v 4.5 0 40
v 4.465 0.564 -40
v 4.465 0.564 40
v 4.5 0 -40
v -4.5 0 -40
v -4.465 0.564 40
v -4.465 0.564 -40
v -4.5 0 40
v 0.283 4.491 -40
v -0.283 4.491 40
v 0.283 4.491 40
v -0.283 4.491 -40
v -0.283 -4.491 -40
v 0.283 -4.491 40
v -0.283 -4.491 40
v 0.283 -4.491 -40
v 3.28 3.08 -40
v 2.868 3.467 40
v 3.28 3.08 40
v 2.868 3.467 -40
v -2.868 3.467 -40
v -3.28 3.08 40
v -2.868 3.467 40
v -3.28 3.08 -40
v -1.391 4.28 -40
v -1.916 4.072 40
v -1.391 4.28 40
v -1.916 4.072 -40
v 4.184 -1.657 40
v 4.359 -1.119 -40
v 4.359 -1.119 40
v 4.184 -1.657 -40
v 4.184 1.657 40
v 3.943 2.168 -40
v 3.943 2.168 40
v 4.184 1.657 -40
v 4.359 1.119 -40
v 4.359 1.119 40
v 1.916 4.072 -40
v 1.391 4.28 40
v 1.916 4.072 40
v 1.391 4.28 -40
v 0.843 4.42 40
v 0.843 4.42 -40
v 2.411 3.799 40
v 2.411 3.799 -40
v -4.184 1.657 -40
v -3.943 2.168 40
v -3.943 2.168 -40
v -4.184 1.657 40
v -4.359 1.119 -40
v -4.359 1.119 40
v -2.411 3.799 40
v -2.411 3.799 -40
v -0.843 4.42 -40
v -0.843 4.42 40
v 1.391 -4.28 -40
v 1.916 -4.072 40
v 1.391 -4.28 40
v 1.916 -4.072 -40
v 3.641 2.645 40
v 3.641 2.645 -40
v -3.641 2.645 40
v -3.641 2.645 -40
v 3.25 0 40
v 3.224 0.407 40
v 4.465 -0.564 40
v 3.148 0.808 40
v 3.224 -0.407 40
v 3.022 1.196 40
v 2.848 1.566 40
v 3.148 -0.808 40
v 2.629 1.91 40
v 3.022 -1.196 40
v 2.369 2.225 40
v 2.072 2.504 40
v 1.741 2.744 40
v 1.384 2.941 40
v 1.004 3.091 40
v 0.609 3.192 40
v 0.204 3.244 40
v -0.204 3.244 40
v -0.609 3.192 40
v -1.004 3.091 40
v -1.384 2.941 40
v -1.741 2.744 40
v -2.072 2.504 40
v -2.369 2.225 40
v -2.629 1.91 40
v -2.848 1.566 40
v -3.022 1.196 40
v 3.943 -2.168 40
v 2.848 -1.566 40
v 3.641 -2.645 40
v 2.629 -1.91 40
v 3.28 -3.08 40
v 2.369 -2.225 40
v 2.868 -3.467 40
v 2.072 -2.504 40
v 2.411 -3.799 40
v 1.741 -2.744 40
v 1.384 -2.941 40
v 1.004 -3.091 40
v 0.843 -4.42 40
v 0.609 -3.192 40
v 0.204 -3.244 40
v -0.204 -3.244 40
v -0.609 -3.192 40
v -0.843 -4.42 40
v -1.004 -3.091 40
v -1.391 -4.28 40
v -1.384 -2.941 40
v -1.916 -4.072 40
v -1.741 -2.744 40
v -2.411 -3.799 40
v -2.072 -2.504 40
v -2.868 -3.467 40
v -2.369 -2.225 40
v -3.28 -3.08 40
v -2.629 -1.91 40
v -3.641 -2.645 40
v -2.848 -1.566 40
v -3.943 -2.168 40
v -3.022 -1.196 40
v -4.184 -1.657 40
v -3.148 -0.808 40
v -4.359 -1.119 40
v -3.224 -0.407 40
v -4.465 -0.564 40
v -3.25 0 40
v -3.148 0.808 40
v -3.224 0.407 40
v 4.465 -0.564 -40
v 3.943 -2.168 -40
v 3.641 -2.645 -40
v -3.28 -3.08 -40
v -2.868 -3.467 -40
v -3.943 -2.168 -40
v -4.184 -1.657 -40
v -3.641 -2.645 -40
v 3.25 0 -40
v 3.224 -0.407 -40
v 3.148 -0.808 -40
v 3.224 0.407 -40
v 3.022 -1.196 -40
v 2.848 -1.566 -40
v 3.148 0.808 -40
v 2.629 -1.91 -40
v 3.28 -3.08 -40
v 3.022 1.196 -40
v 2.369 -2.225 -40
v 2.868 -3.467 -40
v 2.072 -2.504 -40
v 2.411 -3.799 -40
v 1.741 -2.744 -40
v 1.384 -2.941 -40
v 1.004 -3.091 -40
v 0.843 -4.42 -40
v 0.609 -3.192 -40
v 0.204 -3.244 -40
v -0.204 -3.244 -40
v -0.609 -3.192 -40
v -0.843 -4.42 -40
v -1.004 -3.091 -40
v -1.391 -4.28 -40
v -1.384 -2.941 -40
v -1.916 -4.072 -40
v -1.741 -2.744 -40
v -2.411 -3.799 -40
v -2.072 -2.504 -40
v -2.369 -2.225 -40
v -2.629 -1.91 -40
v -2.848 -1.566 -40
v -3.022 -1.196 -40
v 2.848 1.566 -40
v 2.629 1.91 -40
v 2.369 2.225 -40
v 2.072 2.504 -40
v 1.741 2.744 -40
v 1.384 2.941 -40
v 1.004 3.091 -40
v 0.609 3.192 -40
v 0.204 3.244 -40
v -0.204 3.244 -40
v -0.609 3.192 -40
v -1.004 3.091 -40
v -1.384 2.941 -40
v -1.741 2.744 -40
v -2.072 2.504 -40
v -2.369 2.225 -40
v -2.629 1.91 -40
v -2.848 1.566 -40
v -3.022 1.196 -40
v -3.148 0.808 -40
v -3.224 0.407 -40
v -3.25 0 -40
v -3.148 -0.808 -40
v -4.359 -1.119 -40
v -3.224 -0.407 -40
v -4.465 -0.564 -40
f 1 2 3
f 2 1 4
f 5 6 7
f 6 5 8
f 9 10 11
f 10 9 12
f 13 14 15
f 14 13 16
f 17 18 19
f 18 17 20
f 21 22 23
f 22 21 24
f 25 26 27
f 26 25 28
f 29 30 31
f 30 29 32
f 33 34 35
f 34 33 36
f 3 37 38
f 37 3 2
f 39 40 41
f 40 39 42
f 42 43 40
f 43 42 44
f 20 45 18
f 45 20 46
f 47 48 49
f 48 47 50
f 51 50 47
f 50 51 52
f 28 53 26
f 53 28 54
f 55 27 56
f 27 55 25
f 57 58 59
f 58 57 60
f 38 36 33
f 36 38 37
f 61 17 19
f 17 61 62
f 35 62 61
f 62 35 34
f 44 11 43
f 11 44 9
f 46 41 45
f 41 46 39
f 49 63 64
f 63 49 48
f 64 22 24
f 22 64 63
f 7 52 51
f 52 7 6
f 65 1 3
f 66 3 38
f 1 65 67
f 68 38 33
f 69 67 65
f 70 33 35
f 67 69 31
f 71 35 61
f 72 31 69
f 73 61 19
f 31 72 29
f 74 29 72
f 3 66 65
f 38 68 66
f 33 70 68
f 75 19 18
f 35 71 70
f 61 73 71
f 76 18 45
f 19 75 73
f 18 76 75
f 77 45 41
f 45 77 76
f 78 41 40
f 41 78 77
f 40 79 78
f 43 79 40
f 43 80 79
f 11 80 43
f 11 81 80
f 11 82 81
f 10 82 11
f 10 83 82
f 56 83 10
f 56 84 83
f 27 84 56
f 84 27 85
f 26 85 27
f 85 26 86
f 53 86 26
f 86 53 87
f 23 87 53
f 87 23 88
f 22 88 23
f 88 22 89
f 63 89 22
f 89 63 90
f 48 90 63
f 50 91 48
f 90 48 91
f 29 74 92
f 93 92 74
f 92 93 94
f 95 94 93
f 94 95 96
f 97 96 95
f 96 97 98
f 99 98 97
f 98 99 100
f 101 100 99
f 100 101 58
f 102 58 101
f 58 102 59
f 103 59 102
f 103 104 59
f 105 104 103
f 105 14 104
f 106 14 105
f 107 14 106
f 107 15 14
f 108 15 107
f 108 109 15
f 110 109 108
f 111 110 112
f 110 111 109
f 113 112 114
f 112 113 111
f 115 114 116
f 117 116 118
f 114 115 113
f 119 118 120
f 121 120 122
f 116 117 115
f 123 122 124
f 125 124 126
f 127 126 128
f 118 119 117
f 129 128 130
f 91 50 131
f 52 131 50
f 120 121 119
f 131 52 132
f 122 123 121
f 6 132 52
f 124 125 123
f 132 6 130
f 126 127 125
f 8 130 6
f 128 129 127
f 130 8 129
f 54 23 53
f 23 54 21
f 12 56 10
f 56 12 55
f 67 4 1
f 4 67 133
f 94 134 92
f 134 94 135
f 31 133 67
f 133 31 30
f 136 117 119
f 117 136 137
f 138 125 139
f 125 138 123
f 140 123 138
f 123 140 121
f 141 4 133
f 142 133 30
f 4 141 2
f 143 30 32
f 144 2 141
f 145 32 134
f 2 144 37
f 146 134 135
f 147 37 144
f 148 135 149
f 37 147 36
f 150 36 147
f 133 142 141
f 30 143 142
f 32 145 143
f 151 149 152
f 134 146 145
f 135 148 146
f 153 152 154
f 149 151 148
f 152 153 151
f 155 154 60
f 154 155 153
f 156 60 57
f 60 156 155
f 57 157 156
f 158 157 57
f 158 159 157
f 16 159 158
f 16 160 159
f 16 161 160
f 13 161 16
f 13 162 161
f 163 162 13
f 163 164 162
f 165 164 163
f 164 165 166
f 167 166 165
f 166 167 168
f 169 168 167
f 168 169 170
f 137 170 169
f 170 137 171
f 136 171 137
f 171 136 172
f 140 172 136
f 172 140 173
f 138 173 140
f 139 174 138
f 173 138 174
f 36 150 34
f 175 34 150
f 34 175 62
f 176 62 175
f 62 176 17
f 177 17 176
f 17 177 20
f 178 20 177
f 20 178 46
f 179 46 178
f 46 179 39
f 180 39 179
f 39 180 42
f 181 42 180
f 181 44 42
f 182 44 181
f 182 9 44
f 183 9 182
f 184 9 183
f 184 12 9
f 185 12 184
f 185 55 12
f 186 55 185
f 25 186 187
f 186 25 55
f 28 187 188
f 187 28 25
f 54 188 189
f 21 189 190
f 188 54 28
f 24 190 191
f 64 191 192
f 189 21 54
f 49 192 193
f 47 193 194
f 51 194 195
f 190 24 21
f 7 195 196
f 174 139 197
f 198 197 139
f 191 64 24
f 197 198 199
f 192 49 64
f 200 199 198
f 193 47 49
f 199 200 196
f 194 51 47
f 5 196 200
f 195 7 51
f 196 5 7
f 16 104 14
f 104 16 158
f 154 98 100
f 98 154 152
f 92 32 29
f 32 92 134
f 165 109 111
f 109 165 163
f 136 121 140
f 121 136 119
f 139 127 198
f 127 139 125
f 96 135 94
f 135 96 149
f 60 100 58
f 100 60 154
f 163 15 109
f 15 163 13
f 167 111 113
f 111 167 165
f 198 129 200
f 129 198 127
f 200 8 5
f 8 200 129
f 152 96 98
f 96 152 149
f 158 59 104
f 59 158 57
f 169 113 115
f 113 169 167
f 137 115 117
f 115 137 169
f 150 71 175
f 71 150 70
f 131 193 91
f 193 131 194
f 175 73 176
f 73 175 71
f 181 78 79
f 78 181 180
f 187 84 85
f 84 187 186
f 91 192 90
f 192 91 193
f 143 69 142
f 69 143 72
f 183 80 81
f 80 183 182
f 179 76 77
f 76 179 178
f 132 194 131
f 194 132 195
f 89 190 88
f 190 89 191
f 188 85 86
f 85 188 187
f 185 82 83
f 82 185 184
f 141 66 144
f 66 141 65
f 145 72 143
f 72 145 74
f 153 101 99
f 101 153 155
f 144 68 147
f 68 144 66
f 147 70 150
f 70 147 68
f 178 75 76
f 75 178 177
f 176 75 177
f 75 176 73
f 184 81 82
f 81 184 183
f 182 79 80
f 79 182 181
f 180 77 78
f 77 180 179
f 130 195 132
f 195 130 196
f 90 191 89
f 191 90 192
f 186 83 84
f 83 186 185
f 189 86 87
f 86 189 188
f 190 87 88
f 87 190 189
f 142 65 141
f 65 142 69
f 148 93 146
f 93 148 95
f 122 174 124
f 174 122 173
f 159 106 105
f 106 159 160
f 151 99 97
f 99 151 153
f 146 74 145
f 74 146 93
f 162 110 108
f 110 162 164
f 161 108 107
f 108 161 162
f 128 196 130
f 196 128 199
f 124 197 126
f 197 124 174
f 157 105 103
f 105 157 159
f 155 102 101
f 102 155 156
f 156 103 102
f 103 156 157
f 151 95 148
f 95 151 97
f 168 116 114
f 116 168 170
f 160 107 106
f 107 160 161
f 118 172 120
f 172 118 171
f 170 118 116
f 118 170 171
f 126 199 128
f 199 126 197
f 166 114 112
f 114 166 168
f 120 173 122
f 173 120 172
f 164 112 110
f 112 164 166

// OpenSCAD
$fn = 50;


difference() {
	union() {
		translate(v = [0, 0, -40.0000000000]) {
			cylinder(h = 80, r = 4.5000000000);
		}
	}
	union() {
		translate(v = [0, 0, -100.0000000000]) {
			cylinder(h = 200, r = 3.2500000000);
		}
	}
}
